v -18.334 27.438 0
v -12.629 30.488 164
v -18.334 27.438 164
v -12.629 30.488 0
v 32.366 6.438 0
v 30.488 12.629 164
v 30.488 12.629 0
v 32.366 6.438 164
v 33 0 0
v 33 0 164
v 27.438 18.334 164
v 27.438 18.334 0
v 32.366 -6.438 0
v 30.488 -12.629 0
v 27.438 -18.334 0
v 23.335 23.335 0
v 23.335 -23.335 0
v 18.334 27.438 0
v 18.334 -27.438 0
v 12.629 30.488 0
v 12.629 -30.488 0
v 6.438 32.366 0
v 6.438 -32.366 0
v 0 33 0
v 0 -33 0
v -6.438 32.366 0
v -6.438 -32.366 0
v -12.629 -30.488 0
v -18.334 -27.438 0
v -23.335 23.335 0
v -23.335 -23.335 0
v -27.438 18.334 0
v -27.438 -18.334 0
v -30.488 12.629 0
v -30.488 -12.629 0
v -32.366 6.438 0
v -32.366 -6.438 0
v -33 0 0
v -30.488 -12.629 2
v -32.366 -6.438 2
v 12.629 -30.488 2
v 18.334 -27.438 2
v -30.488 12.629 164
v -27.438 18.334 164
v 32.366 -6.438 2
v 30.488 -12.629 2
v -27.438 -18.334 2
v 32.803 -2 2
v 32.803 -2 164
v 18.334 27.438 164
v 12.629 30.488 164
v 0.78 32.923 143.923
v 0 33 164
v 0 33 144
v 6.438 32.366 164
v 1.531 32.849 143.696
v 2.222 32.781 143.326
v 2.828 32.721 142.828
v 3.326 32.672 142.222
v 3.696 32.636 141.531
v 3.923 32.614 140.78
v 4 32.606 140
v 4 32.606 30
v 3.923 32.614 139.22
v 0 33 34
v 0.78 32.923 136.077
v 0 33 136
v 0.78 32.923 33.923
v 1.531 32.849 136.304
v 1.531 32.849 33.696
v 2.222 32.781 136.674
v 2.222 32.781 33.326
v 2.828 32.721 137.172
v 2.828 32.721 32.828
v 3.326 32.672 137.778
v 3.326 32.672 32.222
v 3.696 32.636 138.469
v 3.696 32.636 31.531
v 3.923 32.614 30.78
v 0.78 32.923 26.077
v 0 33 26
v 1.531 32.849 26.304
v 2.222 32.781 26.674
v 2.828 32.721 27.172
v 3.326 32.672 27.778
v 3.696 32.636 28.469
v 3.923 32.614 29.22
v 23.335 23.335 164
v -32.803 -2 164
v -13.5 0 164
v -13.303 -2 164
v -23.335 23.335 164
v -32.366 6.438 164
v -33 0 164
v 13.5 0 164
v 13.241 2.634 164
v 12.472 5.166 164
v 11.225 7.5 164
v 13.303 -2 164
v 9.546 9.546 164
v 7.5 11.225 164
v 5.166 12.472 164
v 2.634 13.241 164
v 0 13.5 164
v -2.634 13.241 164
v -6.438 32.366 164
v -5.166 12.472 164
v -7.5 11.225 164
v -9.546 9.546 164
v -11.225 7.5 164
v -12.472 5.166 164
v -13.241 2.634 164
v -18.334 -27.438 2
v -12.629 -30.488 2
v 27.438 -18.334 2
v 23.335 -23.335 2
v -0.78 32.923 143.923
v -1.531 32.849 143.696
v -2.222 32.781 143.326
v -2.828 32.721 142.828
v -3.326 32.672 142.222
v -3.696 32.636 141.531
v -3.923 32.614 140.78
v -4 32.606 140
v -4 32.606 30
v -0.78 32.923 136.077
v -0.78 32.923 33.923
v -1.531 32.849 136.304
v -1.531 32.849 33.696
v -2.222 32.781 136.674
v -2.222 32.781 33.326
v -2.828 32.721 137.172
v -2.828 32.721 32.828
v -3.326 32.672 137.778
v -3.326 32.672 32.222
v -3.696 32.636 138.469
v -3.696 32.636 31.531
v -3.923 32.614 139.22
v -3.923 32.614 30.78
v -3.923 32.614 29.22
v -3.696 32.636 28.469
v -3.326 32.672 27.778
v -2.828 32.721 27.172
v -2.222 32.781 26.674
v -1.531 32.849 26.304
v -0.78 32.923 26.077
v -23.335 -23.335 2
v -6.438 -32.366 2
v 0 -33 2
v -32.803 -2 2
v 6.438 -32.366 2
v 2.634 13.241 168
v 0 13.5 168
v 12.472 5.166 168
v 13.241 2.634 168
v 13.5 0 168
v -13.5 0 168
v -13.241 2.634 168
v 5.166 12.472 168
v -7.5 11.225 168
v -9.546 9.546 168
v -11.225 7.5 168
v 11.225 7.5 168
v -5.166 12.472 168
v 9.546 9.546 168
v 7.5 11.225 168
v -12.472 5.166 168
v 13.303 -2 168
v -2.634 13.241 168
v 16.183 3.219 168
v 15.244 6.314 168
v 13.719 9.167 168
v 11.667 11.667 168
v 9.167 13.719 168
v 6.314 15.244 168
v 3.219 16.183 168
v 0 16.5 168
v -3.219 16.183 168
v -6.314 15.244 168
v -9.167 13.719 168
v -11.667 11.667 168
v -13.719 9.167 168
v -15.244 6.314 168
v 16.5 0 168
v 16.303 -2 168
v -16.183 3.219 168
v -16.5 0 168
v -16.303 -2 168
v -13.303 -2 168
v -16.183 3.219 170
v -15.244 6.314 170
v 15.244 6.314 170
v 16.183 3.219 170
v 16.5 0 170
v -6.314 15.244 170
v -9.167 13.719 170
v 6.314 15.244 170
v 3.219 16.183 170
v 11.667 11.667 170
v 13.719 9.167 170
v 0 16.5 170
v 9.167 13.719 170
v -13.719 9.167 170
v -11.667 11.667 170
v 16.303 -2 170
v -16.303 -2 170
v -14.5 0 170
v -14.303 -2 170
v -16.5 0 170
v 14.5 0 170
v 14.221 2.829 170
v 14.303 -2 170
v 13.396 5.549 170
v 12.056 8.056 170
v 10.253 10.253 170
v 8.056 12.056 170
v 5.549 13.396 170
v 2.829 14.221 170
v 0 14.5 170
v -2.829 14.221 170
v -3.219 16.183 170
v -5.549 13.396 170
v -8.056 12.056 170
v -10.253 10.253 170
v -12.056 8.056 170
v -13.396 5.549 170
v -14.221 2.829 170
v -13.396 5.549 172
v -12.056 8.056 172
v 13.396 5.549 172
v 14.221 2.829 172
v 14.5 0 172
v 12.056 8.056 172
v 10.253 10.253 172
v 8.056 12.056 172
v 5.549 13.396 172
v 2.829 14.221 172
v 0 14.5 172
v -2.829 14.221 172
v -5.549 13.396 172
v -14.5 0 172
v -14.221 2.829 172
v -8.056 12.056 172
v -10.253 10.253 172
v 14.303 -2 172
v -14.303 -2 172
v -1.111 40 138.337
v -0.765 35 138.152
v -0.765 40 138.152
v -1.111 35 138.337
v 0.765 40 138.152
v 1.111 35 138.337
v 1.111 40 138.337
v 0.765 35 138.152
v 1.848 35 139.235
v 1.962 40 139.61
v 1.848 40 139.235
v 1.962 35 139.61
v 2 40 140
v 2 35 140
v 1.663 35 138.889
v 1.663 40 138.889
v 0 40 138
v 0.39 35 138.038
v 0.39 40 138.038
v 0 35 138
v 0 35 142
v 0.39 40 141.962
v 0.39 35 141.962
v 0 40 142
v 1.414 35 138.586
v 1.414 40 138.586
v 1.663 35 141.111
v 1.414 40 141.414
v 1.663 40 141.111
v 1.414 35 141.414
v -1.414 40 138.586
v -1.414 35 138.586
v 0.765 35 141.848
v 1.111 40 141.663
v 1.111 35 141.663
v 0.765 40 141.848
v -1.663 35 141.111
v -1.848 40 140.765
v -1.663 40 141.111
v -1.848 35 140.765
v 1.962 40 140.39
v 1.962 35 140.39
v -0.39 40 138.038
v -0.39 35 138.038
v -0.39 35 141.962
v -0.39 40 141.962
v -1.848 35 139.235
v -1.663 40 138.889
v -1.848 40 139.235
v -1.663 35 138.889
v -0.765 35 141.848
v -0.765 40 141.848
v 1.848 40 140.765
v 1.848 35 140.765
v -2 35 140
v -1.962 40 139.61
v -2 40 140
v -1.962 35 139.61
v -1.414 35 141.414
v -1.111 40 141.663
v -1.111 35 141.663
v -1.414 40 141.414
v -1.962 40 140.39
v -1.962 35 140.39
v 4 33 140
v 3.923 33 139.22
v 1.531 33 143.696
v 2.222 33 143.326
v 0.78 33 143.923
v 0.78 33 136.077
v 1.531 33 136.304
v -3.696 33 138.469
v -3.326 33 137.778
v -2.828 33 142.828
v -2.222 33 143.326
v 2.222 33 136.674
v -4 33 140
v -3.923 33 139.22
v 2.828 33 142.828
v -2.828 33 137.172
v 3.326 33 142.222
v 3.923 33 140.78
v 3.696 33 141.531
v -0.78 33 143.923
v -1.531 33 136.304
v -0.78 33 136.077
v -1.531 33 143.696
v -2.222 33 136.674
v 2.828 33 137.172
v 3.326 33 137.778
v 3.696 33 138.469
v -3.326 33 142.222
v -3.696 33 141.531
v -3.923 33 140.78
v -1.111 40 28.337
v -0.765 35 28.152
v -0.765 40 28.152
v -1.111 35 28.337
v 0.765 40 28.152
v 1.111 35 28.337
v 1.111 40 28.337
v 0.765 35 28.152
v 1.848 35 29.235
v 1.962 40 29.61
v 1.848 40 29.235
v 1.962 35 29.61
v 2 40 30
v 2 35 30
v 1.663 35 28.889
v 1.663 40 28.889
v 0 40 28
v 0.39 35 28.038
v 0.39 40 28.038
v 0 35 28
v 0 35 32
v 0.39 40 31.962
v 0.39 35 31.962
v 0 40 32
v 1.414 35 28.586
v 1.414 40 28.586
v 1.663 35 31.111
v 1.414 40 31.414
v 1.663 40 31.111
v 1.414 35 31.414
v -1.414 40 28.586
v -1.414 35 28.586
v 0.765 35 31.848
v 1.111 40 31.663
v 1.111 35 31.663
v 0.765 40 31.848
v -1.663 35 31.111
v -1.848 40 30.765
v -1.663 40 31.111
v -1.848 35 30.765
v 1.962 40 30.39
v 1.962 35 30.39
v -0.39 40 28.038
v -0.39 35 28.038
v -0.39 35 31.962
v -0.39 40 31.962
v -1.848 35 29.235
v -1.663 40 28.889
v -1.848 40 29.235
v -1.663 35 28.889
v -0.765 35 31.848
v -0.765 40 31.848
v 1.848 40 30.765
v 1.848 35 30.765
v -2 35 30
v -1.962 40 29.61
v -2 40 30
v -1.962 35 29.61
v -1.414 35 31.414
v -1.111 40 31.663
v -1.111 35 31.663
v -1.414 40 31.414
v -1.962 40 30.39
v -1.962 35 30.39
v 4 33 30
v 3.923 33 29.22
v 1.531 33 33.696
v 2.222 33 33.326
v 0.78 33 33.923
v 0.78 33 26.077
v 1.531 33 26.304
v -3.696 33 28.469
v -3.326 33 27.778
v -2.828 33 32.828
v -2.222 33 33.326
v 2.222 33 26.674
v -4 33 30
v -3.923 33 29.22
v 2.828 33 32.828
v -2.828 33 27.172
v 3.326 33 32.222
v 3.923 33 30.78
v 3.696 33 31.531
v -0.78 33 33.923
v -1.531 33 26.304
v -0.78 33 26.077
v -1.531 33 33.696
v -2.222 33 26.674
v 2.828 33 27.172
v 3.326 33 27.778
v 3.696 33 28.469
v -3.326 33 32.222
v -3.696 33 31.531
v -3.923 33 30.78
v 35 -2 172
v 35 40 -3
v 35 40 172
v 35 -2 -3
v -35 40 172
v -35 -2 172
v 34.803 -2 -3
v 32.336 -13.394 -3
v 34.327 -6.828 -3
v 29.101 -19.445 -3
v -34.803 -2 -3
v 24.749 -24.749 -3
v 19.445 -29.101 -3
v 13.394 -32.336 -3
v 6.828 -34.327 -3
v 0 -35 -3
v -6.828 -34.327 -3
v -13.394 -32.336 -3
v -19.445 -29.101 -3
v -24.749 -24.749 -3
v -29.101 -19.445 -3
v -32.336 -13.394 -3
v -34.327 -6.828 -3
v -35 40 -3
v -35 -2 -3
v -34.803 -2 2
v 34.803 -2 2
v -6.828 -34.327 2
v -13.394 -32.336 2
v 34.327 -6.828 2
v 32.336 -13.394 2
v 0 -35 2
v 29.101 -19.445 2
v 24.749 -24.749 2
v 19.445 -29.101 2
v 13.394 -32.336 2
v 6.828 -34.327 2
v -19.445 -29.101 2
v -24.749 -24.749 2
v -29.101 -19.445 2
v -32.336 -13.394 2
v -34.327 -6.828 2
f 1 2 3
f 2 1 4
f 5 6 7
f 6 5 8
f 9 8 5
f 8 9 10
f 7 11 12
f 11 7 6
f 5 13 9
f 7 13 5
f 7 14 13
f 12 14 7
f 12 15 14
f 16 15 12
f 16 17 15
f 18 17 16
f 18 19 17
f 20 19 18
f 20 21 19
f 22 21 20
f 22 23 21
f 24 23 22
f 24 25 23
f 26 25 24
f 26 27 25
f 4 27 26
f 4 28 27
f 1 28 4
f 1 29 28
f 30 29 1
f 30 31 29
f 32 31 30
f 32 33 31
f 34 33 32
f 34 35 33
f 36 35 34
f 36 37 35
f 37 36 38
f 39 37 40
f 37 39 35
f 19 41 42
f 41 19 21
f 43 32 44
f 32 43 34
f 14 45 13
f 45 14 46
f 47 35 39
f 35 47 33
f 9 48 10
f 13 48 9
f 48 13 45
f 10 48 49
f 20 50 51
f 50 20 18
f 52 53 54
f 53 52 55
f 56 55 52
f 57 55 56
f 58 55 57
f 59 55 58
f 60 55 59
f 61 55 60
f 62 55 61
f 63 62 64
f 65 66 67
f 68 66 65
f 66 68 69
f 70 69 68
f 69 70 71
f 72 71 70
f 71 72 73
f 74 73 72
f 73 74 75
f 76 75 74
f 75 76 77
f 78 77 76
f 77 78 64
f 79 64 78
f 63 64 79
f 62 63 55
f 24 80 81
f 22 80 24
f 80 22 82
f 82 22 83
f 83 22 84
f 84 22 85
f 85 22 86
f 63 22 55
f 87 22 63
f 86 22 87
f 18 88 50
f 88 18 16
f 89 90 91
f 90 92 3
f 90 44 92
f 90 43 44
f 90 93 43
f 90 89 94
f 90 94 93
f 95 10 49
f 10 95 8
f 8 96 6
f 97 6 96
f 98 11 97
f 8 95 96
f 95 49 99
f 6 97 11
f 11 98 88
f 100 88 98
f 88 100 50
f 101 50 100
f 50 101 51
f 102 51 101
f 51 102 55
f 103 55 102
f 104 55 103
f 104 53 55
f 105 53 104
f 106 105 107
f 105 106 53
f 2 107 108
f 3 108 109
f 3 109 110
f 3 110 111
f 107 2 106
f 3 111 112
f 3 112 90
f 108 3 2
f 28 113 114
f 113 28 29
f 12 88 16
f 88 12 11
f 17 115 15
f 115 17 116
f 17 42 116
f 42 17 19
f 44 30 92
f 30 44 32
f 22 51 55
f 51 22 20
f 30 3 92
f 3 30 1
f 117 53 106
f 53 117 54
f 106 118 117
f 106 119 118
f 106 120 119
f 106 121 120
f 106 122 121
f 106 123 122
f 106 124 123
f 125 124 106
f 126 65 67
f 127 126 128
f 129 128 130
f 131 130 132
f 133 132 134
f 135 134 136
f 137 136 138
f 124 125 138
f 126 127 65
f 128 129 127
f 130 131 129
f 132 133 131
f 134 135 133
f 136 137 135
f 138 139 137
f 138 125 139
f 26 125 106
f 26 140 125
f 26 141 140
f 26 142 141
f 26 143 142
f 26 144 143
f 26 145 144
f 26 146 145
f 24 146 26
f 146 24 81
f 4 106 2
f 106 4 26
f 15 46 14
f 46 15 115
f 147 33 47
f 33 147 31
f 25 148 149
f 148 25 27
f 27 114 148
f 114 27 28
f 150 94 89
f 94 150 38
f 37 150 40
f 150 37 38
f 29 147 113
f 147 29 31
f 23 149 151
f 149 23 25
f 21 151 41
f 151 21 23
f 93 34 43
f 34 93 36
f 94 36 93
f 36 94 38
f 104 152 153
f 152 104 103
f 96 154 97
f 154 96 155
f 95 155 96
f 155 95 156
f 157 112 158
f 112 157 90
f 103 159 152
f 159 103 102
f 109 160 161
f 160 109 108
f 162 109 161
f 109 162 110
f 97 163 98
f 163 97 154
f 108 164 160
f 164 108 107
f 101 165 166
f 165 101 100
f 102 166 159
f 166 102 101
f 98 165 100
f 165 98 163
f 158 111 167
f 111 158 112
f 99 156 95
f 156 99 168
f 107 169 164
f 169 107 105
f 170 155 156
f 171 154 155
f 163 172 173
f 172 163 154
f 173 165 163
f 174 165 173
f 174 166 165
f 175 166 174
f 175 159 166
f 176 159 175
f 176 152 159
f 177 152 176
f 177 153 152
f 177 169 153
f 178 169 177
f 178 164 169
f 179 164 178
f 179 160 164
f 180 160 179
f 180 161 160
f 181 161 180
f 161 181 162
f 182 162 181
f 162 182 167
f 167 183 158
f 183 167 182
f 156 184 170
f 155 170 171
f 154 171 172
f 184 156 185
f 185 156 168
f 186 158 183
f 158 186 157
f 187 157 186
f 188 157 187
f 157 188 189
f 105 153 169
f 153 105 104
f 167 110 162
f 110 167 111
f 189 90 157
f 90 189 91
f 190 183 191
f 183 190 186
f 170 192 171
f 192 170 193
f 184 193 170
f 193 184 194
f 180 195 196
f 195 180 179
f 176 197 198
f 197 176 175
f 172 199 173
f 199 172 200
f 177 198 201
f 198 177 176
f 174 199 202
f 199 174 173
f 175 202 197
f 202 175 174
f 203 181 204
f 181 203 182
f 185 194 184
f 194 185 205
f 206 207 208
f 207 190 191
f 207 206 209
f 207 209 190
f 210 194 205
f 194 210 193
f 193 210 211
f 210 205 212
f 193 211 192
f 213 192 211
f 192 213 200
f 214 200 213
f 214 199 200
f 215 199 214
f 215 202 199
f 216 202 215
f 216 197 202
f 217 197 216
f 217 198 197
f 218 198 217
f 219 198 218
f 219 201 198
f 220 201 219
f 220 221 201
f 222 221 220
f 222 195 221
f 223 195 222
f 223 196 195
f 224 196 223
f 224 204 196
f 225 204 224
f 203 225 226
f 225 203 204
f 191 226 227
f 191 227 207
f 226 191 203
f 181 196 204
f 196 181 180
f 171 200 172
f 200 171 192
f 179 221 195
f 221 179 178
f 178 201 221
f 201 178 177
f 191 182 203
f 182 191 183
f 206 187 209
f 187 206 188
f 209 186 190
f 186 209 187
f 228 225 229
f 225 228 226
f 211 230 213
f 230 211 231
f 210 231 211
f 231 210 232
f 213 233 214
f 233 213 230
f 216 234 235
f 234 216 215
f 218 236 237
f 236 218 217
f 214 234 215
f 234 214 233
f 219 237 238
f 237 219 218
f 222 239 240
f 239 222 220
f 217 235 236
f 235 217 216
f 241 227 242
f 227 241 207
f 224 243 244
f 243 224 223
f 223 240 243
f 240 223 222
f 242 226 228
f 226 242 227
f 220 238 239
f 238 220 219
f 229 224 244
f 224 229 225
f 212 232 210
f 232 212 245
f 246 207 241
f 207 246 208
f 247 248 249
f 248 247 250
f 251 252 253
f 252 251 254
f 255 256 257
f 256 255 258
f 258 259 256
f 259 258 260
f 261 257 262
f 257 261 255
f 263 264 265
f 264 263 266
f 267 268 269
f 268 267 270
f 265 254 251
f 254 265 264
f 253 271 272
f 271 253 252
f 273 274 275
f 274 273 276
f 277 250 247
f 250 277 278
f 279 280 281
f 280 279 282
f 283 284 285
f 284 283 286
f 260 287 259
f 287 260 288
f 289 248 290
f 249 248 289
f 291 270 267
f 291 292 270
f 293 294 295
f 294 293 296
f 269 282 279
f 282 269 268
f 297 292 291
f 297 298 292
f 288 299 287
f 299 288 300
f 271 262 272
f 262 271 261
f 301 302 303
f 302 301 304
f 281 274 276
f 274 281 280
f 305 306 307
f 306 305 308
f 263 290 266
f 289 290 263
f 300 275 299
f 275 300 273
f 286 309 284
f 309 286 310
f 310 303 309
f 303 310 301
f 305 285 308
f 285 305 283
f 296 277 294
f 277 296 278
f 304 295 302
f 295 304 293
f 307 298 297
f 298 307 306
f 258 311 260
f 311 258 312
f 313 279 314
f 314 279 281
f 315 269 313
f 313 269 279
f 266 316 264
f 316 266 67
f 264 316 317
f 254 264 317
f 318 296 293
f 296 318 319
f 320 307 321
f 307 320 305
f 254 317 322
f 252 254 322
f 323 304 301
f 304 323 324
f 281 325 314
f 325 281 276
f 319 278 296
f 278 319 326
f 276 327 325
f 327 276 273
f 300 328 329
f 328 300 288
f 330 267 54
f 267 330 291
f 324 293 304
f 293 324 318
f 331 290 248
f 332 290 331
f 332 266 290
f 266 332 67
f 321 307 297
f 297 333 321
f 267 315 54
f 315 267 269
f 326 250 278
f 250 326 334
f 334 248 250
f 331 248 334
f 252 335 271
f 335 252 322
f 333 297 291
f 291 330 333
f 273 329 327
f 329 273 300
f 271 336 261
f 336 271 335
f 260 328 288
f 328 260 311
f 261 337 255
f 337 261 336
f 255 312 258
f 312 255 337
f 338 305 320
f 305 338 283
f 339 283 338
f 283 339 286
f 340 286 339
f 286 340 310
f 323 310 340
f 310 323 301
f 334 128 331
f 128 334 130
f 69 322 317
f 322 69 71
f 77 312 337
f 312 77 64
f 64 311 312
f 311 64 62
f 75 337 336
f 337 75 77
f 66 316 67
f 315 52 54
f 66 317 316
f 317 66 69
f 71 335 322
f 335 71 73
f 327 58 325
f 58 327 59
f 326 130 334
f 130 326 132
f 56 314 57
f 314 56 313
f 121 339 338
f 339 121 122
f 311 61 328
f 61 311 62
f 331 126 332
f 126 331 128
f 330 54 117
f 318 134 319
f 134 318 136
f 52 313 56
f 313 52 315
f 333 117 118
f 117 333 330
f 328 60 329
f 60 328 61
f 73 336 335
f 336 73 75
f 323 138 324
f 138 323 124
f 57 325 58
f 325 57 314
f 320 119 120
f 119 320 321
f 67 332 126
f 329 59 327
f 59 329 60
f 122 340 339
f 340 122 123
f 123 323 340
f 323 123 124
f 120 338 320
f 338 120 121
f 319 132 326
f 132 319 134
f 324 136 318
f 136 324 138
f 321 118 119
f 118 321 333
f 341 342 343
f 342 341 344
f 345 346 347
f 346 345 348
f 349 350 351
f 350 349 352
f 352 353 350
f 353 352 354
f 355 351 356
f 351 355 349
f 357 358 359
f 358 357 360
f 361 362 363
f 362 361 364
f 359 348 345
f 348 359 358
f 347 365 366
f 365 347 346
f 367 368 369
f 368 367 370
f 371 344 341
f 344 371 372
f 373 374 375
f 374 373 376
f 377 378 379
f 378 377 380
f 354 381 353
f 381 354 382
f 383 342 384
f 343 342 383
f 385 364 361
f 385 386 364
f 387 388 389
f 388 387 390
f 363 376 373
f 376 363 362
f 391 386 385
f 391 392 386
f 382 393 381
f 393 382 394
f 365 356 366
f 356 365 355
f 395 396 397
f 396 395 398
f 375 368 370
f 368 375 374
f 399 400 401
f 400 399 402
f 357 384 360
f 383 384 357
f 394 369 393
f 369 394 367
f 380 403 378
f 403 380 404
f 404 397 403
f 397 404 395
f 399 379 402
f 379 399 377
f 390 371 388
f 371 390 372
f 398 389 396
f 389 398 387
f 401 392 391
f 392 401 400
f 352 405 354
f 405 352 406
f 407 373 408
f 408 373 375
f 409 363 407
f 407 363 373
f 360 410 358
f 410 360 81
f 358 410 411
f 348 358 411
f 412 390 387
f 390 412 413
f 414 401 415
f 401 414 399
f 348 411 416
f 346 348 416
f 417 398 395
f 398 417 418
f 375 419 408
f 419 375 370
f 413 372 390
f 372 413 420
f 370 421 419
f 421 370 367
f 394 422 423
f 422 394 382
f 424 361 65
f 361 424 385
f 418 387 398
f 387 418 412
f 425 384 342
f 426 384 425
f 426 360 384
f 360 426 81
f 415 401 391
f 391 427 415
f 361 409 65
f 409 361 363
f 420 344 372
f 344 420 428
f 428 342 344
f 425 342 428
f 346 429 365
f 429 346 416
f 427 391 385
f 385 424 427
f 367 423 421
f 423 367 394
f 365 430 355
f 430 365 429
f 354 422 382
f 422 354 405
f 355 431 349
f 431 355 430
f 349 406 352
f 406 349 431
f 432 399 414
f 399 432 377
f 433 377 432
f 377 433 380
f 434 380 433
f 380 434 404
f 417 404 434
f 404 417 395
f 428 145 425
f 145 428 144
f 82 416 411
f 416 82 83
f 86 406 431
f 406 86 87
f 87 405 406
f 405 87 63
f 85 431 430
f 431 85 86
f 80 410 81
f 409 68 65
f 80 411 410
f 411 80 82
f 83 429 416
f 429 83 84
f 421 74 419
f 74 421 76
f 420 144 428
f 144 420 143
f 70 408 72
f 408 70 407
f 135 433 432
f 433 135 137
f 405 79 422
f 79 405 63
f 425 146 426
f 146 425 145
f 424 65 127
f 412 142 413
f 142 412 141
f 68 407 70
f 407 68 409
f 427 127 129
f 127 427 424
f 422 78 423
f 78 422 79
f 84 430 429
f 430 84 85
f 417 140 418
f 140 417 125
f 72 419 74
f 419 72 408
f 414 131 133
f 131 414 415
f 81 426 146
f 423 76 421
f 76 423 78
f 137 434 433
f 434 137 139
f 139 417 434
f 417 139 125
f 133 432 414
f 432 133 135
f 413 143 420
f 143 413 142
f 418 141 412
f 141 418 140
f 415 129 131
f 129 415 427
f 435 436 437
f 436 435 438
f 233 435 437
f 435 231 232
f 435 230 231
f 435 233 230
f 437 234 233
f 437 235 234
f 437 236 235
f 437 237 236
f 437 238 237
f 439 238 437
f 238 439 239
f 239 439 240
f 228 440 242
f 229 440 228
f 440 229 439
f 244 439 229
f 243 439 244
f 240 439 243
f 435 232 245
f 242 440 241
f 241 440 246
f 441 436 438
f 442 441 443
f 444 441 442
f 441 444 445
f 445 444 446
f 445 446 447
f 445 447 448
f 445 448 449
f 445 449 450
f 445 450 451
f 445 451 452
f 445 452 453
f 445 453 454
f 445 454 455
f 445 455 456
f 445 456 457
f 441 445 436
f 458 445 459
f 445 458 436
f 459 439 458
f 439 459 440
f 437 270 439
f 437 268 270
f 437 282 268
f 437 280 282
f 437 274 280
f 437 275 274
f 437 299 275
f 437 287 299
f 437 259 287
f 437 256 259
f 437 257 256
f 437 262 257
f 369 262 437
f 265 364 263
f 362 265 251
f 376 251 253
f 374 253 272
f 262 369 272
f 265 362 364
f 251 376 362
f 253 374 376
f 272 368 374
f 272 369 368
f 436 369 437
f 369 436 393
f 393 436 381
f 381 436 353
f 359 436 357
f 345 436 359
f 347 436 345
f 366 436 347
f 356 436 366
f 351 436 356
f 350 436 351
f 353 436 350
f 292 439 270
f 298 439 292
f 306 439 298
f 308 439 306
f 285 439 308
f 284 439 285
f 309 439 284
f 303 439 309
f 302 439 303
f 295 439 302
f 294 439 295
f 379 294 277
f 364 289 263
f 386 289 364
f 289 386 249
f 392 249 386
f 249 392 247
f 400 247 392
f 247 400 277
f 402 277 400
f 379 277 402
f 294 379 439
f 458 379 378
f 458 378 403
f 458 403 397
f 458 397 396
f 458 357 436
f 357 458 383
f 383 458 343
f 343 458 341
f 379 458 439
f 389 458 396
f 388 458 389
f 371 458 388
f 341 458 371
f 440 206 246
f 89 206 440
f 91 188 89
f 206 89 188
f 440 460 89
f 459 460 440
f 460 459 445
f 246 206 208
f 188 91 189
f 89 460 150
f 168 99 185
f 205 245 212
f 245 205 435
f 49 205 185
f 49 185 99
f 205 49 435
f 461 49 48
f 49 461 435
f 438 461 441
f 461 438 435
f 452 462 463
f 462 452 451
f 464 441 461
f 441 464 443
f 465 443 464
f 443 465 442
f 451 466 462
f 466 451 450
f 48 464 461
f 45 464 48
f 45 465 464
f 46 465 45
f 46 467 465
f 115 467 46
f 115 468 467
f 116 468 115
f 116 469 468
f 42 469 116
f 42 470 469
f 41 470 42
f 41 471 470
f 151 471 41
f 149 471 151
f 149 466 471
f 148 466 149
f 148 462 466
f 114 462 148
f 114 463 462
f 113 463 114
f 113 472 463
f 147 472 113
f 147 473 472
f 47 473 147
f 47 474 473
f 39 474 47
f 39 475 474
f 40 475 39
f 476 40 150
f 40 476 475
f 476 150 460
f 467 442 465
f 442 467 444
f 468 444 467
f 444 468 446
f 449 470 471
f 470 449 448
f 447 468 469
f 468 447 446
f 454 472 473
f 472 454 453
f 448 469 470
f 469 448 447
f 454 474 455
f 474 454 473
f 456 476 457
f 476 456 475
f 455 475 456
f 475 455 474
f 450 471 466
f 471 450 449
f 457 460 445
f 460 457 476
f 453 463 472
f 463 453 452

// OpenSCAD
difference() {
	base();
	bottle();
	translate([0,66/2,140])
		rotate([-90,0,0])
			screew();
	translate([0,66/2,30])
		rotate([-90,0,0])
			screew();
}


module base() {
	grap = 2;
	translate([-35,0-grap, -3]) {
		cube([70,40+grap,175]);
		translate([35,+grap,0])
			cylinder(5,70/2,70/2, $fn=32);
	}
}	

module bottle() {
	color("red") {
		cylinder(164,66/2,66/2, $fn=32);
		cylinder(168,27/2,27/2, $fn=32);
		translate([0,0,168])
			cylinder(2,33/2,33/2, $fn=32);
		translate([0,0,170])
			cylinder(15,29/2,29/2, $fn=32);
	}
}

module screew() {
	color("yellow") {
		cylinder(20, 4/2, 4/2, $fn=32);
		cylinder(4, 8/2, 0, $fn=32);
		translate([0,0,-4])
			cylinder(4, 8/2, 8/2, $fn=32);
	}
}
